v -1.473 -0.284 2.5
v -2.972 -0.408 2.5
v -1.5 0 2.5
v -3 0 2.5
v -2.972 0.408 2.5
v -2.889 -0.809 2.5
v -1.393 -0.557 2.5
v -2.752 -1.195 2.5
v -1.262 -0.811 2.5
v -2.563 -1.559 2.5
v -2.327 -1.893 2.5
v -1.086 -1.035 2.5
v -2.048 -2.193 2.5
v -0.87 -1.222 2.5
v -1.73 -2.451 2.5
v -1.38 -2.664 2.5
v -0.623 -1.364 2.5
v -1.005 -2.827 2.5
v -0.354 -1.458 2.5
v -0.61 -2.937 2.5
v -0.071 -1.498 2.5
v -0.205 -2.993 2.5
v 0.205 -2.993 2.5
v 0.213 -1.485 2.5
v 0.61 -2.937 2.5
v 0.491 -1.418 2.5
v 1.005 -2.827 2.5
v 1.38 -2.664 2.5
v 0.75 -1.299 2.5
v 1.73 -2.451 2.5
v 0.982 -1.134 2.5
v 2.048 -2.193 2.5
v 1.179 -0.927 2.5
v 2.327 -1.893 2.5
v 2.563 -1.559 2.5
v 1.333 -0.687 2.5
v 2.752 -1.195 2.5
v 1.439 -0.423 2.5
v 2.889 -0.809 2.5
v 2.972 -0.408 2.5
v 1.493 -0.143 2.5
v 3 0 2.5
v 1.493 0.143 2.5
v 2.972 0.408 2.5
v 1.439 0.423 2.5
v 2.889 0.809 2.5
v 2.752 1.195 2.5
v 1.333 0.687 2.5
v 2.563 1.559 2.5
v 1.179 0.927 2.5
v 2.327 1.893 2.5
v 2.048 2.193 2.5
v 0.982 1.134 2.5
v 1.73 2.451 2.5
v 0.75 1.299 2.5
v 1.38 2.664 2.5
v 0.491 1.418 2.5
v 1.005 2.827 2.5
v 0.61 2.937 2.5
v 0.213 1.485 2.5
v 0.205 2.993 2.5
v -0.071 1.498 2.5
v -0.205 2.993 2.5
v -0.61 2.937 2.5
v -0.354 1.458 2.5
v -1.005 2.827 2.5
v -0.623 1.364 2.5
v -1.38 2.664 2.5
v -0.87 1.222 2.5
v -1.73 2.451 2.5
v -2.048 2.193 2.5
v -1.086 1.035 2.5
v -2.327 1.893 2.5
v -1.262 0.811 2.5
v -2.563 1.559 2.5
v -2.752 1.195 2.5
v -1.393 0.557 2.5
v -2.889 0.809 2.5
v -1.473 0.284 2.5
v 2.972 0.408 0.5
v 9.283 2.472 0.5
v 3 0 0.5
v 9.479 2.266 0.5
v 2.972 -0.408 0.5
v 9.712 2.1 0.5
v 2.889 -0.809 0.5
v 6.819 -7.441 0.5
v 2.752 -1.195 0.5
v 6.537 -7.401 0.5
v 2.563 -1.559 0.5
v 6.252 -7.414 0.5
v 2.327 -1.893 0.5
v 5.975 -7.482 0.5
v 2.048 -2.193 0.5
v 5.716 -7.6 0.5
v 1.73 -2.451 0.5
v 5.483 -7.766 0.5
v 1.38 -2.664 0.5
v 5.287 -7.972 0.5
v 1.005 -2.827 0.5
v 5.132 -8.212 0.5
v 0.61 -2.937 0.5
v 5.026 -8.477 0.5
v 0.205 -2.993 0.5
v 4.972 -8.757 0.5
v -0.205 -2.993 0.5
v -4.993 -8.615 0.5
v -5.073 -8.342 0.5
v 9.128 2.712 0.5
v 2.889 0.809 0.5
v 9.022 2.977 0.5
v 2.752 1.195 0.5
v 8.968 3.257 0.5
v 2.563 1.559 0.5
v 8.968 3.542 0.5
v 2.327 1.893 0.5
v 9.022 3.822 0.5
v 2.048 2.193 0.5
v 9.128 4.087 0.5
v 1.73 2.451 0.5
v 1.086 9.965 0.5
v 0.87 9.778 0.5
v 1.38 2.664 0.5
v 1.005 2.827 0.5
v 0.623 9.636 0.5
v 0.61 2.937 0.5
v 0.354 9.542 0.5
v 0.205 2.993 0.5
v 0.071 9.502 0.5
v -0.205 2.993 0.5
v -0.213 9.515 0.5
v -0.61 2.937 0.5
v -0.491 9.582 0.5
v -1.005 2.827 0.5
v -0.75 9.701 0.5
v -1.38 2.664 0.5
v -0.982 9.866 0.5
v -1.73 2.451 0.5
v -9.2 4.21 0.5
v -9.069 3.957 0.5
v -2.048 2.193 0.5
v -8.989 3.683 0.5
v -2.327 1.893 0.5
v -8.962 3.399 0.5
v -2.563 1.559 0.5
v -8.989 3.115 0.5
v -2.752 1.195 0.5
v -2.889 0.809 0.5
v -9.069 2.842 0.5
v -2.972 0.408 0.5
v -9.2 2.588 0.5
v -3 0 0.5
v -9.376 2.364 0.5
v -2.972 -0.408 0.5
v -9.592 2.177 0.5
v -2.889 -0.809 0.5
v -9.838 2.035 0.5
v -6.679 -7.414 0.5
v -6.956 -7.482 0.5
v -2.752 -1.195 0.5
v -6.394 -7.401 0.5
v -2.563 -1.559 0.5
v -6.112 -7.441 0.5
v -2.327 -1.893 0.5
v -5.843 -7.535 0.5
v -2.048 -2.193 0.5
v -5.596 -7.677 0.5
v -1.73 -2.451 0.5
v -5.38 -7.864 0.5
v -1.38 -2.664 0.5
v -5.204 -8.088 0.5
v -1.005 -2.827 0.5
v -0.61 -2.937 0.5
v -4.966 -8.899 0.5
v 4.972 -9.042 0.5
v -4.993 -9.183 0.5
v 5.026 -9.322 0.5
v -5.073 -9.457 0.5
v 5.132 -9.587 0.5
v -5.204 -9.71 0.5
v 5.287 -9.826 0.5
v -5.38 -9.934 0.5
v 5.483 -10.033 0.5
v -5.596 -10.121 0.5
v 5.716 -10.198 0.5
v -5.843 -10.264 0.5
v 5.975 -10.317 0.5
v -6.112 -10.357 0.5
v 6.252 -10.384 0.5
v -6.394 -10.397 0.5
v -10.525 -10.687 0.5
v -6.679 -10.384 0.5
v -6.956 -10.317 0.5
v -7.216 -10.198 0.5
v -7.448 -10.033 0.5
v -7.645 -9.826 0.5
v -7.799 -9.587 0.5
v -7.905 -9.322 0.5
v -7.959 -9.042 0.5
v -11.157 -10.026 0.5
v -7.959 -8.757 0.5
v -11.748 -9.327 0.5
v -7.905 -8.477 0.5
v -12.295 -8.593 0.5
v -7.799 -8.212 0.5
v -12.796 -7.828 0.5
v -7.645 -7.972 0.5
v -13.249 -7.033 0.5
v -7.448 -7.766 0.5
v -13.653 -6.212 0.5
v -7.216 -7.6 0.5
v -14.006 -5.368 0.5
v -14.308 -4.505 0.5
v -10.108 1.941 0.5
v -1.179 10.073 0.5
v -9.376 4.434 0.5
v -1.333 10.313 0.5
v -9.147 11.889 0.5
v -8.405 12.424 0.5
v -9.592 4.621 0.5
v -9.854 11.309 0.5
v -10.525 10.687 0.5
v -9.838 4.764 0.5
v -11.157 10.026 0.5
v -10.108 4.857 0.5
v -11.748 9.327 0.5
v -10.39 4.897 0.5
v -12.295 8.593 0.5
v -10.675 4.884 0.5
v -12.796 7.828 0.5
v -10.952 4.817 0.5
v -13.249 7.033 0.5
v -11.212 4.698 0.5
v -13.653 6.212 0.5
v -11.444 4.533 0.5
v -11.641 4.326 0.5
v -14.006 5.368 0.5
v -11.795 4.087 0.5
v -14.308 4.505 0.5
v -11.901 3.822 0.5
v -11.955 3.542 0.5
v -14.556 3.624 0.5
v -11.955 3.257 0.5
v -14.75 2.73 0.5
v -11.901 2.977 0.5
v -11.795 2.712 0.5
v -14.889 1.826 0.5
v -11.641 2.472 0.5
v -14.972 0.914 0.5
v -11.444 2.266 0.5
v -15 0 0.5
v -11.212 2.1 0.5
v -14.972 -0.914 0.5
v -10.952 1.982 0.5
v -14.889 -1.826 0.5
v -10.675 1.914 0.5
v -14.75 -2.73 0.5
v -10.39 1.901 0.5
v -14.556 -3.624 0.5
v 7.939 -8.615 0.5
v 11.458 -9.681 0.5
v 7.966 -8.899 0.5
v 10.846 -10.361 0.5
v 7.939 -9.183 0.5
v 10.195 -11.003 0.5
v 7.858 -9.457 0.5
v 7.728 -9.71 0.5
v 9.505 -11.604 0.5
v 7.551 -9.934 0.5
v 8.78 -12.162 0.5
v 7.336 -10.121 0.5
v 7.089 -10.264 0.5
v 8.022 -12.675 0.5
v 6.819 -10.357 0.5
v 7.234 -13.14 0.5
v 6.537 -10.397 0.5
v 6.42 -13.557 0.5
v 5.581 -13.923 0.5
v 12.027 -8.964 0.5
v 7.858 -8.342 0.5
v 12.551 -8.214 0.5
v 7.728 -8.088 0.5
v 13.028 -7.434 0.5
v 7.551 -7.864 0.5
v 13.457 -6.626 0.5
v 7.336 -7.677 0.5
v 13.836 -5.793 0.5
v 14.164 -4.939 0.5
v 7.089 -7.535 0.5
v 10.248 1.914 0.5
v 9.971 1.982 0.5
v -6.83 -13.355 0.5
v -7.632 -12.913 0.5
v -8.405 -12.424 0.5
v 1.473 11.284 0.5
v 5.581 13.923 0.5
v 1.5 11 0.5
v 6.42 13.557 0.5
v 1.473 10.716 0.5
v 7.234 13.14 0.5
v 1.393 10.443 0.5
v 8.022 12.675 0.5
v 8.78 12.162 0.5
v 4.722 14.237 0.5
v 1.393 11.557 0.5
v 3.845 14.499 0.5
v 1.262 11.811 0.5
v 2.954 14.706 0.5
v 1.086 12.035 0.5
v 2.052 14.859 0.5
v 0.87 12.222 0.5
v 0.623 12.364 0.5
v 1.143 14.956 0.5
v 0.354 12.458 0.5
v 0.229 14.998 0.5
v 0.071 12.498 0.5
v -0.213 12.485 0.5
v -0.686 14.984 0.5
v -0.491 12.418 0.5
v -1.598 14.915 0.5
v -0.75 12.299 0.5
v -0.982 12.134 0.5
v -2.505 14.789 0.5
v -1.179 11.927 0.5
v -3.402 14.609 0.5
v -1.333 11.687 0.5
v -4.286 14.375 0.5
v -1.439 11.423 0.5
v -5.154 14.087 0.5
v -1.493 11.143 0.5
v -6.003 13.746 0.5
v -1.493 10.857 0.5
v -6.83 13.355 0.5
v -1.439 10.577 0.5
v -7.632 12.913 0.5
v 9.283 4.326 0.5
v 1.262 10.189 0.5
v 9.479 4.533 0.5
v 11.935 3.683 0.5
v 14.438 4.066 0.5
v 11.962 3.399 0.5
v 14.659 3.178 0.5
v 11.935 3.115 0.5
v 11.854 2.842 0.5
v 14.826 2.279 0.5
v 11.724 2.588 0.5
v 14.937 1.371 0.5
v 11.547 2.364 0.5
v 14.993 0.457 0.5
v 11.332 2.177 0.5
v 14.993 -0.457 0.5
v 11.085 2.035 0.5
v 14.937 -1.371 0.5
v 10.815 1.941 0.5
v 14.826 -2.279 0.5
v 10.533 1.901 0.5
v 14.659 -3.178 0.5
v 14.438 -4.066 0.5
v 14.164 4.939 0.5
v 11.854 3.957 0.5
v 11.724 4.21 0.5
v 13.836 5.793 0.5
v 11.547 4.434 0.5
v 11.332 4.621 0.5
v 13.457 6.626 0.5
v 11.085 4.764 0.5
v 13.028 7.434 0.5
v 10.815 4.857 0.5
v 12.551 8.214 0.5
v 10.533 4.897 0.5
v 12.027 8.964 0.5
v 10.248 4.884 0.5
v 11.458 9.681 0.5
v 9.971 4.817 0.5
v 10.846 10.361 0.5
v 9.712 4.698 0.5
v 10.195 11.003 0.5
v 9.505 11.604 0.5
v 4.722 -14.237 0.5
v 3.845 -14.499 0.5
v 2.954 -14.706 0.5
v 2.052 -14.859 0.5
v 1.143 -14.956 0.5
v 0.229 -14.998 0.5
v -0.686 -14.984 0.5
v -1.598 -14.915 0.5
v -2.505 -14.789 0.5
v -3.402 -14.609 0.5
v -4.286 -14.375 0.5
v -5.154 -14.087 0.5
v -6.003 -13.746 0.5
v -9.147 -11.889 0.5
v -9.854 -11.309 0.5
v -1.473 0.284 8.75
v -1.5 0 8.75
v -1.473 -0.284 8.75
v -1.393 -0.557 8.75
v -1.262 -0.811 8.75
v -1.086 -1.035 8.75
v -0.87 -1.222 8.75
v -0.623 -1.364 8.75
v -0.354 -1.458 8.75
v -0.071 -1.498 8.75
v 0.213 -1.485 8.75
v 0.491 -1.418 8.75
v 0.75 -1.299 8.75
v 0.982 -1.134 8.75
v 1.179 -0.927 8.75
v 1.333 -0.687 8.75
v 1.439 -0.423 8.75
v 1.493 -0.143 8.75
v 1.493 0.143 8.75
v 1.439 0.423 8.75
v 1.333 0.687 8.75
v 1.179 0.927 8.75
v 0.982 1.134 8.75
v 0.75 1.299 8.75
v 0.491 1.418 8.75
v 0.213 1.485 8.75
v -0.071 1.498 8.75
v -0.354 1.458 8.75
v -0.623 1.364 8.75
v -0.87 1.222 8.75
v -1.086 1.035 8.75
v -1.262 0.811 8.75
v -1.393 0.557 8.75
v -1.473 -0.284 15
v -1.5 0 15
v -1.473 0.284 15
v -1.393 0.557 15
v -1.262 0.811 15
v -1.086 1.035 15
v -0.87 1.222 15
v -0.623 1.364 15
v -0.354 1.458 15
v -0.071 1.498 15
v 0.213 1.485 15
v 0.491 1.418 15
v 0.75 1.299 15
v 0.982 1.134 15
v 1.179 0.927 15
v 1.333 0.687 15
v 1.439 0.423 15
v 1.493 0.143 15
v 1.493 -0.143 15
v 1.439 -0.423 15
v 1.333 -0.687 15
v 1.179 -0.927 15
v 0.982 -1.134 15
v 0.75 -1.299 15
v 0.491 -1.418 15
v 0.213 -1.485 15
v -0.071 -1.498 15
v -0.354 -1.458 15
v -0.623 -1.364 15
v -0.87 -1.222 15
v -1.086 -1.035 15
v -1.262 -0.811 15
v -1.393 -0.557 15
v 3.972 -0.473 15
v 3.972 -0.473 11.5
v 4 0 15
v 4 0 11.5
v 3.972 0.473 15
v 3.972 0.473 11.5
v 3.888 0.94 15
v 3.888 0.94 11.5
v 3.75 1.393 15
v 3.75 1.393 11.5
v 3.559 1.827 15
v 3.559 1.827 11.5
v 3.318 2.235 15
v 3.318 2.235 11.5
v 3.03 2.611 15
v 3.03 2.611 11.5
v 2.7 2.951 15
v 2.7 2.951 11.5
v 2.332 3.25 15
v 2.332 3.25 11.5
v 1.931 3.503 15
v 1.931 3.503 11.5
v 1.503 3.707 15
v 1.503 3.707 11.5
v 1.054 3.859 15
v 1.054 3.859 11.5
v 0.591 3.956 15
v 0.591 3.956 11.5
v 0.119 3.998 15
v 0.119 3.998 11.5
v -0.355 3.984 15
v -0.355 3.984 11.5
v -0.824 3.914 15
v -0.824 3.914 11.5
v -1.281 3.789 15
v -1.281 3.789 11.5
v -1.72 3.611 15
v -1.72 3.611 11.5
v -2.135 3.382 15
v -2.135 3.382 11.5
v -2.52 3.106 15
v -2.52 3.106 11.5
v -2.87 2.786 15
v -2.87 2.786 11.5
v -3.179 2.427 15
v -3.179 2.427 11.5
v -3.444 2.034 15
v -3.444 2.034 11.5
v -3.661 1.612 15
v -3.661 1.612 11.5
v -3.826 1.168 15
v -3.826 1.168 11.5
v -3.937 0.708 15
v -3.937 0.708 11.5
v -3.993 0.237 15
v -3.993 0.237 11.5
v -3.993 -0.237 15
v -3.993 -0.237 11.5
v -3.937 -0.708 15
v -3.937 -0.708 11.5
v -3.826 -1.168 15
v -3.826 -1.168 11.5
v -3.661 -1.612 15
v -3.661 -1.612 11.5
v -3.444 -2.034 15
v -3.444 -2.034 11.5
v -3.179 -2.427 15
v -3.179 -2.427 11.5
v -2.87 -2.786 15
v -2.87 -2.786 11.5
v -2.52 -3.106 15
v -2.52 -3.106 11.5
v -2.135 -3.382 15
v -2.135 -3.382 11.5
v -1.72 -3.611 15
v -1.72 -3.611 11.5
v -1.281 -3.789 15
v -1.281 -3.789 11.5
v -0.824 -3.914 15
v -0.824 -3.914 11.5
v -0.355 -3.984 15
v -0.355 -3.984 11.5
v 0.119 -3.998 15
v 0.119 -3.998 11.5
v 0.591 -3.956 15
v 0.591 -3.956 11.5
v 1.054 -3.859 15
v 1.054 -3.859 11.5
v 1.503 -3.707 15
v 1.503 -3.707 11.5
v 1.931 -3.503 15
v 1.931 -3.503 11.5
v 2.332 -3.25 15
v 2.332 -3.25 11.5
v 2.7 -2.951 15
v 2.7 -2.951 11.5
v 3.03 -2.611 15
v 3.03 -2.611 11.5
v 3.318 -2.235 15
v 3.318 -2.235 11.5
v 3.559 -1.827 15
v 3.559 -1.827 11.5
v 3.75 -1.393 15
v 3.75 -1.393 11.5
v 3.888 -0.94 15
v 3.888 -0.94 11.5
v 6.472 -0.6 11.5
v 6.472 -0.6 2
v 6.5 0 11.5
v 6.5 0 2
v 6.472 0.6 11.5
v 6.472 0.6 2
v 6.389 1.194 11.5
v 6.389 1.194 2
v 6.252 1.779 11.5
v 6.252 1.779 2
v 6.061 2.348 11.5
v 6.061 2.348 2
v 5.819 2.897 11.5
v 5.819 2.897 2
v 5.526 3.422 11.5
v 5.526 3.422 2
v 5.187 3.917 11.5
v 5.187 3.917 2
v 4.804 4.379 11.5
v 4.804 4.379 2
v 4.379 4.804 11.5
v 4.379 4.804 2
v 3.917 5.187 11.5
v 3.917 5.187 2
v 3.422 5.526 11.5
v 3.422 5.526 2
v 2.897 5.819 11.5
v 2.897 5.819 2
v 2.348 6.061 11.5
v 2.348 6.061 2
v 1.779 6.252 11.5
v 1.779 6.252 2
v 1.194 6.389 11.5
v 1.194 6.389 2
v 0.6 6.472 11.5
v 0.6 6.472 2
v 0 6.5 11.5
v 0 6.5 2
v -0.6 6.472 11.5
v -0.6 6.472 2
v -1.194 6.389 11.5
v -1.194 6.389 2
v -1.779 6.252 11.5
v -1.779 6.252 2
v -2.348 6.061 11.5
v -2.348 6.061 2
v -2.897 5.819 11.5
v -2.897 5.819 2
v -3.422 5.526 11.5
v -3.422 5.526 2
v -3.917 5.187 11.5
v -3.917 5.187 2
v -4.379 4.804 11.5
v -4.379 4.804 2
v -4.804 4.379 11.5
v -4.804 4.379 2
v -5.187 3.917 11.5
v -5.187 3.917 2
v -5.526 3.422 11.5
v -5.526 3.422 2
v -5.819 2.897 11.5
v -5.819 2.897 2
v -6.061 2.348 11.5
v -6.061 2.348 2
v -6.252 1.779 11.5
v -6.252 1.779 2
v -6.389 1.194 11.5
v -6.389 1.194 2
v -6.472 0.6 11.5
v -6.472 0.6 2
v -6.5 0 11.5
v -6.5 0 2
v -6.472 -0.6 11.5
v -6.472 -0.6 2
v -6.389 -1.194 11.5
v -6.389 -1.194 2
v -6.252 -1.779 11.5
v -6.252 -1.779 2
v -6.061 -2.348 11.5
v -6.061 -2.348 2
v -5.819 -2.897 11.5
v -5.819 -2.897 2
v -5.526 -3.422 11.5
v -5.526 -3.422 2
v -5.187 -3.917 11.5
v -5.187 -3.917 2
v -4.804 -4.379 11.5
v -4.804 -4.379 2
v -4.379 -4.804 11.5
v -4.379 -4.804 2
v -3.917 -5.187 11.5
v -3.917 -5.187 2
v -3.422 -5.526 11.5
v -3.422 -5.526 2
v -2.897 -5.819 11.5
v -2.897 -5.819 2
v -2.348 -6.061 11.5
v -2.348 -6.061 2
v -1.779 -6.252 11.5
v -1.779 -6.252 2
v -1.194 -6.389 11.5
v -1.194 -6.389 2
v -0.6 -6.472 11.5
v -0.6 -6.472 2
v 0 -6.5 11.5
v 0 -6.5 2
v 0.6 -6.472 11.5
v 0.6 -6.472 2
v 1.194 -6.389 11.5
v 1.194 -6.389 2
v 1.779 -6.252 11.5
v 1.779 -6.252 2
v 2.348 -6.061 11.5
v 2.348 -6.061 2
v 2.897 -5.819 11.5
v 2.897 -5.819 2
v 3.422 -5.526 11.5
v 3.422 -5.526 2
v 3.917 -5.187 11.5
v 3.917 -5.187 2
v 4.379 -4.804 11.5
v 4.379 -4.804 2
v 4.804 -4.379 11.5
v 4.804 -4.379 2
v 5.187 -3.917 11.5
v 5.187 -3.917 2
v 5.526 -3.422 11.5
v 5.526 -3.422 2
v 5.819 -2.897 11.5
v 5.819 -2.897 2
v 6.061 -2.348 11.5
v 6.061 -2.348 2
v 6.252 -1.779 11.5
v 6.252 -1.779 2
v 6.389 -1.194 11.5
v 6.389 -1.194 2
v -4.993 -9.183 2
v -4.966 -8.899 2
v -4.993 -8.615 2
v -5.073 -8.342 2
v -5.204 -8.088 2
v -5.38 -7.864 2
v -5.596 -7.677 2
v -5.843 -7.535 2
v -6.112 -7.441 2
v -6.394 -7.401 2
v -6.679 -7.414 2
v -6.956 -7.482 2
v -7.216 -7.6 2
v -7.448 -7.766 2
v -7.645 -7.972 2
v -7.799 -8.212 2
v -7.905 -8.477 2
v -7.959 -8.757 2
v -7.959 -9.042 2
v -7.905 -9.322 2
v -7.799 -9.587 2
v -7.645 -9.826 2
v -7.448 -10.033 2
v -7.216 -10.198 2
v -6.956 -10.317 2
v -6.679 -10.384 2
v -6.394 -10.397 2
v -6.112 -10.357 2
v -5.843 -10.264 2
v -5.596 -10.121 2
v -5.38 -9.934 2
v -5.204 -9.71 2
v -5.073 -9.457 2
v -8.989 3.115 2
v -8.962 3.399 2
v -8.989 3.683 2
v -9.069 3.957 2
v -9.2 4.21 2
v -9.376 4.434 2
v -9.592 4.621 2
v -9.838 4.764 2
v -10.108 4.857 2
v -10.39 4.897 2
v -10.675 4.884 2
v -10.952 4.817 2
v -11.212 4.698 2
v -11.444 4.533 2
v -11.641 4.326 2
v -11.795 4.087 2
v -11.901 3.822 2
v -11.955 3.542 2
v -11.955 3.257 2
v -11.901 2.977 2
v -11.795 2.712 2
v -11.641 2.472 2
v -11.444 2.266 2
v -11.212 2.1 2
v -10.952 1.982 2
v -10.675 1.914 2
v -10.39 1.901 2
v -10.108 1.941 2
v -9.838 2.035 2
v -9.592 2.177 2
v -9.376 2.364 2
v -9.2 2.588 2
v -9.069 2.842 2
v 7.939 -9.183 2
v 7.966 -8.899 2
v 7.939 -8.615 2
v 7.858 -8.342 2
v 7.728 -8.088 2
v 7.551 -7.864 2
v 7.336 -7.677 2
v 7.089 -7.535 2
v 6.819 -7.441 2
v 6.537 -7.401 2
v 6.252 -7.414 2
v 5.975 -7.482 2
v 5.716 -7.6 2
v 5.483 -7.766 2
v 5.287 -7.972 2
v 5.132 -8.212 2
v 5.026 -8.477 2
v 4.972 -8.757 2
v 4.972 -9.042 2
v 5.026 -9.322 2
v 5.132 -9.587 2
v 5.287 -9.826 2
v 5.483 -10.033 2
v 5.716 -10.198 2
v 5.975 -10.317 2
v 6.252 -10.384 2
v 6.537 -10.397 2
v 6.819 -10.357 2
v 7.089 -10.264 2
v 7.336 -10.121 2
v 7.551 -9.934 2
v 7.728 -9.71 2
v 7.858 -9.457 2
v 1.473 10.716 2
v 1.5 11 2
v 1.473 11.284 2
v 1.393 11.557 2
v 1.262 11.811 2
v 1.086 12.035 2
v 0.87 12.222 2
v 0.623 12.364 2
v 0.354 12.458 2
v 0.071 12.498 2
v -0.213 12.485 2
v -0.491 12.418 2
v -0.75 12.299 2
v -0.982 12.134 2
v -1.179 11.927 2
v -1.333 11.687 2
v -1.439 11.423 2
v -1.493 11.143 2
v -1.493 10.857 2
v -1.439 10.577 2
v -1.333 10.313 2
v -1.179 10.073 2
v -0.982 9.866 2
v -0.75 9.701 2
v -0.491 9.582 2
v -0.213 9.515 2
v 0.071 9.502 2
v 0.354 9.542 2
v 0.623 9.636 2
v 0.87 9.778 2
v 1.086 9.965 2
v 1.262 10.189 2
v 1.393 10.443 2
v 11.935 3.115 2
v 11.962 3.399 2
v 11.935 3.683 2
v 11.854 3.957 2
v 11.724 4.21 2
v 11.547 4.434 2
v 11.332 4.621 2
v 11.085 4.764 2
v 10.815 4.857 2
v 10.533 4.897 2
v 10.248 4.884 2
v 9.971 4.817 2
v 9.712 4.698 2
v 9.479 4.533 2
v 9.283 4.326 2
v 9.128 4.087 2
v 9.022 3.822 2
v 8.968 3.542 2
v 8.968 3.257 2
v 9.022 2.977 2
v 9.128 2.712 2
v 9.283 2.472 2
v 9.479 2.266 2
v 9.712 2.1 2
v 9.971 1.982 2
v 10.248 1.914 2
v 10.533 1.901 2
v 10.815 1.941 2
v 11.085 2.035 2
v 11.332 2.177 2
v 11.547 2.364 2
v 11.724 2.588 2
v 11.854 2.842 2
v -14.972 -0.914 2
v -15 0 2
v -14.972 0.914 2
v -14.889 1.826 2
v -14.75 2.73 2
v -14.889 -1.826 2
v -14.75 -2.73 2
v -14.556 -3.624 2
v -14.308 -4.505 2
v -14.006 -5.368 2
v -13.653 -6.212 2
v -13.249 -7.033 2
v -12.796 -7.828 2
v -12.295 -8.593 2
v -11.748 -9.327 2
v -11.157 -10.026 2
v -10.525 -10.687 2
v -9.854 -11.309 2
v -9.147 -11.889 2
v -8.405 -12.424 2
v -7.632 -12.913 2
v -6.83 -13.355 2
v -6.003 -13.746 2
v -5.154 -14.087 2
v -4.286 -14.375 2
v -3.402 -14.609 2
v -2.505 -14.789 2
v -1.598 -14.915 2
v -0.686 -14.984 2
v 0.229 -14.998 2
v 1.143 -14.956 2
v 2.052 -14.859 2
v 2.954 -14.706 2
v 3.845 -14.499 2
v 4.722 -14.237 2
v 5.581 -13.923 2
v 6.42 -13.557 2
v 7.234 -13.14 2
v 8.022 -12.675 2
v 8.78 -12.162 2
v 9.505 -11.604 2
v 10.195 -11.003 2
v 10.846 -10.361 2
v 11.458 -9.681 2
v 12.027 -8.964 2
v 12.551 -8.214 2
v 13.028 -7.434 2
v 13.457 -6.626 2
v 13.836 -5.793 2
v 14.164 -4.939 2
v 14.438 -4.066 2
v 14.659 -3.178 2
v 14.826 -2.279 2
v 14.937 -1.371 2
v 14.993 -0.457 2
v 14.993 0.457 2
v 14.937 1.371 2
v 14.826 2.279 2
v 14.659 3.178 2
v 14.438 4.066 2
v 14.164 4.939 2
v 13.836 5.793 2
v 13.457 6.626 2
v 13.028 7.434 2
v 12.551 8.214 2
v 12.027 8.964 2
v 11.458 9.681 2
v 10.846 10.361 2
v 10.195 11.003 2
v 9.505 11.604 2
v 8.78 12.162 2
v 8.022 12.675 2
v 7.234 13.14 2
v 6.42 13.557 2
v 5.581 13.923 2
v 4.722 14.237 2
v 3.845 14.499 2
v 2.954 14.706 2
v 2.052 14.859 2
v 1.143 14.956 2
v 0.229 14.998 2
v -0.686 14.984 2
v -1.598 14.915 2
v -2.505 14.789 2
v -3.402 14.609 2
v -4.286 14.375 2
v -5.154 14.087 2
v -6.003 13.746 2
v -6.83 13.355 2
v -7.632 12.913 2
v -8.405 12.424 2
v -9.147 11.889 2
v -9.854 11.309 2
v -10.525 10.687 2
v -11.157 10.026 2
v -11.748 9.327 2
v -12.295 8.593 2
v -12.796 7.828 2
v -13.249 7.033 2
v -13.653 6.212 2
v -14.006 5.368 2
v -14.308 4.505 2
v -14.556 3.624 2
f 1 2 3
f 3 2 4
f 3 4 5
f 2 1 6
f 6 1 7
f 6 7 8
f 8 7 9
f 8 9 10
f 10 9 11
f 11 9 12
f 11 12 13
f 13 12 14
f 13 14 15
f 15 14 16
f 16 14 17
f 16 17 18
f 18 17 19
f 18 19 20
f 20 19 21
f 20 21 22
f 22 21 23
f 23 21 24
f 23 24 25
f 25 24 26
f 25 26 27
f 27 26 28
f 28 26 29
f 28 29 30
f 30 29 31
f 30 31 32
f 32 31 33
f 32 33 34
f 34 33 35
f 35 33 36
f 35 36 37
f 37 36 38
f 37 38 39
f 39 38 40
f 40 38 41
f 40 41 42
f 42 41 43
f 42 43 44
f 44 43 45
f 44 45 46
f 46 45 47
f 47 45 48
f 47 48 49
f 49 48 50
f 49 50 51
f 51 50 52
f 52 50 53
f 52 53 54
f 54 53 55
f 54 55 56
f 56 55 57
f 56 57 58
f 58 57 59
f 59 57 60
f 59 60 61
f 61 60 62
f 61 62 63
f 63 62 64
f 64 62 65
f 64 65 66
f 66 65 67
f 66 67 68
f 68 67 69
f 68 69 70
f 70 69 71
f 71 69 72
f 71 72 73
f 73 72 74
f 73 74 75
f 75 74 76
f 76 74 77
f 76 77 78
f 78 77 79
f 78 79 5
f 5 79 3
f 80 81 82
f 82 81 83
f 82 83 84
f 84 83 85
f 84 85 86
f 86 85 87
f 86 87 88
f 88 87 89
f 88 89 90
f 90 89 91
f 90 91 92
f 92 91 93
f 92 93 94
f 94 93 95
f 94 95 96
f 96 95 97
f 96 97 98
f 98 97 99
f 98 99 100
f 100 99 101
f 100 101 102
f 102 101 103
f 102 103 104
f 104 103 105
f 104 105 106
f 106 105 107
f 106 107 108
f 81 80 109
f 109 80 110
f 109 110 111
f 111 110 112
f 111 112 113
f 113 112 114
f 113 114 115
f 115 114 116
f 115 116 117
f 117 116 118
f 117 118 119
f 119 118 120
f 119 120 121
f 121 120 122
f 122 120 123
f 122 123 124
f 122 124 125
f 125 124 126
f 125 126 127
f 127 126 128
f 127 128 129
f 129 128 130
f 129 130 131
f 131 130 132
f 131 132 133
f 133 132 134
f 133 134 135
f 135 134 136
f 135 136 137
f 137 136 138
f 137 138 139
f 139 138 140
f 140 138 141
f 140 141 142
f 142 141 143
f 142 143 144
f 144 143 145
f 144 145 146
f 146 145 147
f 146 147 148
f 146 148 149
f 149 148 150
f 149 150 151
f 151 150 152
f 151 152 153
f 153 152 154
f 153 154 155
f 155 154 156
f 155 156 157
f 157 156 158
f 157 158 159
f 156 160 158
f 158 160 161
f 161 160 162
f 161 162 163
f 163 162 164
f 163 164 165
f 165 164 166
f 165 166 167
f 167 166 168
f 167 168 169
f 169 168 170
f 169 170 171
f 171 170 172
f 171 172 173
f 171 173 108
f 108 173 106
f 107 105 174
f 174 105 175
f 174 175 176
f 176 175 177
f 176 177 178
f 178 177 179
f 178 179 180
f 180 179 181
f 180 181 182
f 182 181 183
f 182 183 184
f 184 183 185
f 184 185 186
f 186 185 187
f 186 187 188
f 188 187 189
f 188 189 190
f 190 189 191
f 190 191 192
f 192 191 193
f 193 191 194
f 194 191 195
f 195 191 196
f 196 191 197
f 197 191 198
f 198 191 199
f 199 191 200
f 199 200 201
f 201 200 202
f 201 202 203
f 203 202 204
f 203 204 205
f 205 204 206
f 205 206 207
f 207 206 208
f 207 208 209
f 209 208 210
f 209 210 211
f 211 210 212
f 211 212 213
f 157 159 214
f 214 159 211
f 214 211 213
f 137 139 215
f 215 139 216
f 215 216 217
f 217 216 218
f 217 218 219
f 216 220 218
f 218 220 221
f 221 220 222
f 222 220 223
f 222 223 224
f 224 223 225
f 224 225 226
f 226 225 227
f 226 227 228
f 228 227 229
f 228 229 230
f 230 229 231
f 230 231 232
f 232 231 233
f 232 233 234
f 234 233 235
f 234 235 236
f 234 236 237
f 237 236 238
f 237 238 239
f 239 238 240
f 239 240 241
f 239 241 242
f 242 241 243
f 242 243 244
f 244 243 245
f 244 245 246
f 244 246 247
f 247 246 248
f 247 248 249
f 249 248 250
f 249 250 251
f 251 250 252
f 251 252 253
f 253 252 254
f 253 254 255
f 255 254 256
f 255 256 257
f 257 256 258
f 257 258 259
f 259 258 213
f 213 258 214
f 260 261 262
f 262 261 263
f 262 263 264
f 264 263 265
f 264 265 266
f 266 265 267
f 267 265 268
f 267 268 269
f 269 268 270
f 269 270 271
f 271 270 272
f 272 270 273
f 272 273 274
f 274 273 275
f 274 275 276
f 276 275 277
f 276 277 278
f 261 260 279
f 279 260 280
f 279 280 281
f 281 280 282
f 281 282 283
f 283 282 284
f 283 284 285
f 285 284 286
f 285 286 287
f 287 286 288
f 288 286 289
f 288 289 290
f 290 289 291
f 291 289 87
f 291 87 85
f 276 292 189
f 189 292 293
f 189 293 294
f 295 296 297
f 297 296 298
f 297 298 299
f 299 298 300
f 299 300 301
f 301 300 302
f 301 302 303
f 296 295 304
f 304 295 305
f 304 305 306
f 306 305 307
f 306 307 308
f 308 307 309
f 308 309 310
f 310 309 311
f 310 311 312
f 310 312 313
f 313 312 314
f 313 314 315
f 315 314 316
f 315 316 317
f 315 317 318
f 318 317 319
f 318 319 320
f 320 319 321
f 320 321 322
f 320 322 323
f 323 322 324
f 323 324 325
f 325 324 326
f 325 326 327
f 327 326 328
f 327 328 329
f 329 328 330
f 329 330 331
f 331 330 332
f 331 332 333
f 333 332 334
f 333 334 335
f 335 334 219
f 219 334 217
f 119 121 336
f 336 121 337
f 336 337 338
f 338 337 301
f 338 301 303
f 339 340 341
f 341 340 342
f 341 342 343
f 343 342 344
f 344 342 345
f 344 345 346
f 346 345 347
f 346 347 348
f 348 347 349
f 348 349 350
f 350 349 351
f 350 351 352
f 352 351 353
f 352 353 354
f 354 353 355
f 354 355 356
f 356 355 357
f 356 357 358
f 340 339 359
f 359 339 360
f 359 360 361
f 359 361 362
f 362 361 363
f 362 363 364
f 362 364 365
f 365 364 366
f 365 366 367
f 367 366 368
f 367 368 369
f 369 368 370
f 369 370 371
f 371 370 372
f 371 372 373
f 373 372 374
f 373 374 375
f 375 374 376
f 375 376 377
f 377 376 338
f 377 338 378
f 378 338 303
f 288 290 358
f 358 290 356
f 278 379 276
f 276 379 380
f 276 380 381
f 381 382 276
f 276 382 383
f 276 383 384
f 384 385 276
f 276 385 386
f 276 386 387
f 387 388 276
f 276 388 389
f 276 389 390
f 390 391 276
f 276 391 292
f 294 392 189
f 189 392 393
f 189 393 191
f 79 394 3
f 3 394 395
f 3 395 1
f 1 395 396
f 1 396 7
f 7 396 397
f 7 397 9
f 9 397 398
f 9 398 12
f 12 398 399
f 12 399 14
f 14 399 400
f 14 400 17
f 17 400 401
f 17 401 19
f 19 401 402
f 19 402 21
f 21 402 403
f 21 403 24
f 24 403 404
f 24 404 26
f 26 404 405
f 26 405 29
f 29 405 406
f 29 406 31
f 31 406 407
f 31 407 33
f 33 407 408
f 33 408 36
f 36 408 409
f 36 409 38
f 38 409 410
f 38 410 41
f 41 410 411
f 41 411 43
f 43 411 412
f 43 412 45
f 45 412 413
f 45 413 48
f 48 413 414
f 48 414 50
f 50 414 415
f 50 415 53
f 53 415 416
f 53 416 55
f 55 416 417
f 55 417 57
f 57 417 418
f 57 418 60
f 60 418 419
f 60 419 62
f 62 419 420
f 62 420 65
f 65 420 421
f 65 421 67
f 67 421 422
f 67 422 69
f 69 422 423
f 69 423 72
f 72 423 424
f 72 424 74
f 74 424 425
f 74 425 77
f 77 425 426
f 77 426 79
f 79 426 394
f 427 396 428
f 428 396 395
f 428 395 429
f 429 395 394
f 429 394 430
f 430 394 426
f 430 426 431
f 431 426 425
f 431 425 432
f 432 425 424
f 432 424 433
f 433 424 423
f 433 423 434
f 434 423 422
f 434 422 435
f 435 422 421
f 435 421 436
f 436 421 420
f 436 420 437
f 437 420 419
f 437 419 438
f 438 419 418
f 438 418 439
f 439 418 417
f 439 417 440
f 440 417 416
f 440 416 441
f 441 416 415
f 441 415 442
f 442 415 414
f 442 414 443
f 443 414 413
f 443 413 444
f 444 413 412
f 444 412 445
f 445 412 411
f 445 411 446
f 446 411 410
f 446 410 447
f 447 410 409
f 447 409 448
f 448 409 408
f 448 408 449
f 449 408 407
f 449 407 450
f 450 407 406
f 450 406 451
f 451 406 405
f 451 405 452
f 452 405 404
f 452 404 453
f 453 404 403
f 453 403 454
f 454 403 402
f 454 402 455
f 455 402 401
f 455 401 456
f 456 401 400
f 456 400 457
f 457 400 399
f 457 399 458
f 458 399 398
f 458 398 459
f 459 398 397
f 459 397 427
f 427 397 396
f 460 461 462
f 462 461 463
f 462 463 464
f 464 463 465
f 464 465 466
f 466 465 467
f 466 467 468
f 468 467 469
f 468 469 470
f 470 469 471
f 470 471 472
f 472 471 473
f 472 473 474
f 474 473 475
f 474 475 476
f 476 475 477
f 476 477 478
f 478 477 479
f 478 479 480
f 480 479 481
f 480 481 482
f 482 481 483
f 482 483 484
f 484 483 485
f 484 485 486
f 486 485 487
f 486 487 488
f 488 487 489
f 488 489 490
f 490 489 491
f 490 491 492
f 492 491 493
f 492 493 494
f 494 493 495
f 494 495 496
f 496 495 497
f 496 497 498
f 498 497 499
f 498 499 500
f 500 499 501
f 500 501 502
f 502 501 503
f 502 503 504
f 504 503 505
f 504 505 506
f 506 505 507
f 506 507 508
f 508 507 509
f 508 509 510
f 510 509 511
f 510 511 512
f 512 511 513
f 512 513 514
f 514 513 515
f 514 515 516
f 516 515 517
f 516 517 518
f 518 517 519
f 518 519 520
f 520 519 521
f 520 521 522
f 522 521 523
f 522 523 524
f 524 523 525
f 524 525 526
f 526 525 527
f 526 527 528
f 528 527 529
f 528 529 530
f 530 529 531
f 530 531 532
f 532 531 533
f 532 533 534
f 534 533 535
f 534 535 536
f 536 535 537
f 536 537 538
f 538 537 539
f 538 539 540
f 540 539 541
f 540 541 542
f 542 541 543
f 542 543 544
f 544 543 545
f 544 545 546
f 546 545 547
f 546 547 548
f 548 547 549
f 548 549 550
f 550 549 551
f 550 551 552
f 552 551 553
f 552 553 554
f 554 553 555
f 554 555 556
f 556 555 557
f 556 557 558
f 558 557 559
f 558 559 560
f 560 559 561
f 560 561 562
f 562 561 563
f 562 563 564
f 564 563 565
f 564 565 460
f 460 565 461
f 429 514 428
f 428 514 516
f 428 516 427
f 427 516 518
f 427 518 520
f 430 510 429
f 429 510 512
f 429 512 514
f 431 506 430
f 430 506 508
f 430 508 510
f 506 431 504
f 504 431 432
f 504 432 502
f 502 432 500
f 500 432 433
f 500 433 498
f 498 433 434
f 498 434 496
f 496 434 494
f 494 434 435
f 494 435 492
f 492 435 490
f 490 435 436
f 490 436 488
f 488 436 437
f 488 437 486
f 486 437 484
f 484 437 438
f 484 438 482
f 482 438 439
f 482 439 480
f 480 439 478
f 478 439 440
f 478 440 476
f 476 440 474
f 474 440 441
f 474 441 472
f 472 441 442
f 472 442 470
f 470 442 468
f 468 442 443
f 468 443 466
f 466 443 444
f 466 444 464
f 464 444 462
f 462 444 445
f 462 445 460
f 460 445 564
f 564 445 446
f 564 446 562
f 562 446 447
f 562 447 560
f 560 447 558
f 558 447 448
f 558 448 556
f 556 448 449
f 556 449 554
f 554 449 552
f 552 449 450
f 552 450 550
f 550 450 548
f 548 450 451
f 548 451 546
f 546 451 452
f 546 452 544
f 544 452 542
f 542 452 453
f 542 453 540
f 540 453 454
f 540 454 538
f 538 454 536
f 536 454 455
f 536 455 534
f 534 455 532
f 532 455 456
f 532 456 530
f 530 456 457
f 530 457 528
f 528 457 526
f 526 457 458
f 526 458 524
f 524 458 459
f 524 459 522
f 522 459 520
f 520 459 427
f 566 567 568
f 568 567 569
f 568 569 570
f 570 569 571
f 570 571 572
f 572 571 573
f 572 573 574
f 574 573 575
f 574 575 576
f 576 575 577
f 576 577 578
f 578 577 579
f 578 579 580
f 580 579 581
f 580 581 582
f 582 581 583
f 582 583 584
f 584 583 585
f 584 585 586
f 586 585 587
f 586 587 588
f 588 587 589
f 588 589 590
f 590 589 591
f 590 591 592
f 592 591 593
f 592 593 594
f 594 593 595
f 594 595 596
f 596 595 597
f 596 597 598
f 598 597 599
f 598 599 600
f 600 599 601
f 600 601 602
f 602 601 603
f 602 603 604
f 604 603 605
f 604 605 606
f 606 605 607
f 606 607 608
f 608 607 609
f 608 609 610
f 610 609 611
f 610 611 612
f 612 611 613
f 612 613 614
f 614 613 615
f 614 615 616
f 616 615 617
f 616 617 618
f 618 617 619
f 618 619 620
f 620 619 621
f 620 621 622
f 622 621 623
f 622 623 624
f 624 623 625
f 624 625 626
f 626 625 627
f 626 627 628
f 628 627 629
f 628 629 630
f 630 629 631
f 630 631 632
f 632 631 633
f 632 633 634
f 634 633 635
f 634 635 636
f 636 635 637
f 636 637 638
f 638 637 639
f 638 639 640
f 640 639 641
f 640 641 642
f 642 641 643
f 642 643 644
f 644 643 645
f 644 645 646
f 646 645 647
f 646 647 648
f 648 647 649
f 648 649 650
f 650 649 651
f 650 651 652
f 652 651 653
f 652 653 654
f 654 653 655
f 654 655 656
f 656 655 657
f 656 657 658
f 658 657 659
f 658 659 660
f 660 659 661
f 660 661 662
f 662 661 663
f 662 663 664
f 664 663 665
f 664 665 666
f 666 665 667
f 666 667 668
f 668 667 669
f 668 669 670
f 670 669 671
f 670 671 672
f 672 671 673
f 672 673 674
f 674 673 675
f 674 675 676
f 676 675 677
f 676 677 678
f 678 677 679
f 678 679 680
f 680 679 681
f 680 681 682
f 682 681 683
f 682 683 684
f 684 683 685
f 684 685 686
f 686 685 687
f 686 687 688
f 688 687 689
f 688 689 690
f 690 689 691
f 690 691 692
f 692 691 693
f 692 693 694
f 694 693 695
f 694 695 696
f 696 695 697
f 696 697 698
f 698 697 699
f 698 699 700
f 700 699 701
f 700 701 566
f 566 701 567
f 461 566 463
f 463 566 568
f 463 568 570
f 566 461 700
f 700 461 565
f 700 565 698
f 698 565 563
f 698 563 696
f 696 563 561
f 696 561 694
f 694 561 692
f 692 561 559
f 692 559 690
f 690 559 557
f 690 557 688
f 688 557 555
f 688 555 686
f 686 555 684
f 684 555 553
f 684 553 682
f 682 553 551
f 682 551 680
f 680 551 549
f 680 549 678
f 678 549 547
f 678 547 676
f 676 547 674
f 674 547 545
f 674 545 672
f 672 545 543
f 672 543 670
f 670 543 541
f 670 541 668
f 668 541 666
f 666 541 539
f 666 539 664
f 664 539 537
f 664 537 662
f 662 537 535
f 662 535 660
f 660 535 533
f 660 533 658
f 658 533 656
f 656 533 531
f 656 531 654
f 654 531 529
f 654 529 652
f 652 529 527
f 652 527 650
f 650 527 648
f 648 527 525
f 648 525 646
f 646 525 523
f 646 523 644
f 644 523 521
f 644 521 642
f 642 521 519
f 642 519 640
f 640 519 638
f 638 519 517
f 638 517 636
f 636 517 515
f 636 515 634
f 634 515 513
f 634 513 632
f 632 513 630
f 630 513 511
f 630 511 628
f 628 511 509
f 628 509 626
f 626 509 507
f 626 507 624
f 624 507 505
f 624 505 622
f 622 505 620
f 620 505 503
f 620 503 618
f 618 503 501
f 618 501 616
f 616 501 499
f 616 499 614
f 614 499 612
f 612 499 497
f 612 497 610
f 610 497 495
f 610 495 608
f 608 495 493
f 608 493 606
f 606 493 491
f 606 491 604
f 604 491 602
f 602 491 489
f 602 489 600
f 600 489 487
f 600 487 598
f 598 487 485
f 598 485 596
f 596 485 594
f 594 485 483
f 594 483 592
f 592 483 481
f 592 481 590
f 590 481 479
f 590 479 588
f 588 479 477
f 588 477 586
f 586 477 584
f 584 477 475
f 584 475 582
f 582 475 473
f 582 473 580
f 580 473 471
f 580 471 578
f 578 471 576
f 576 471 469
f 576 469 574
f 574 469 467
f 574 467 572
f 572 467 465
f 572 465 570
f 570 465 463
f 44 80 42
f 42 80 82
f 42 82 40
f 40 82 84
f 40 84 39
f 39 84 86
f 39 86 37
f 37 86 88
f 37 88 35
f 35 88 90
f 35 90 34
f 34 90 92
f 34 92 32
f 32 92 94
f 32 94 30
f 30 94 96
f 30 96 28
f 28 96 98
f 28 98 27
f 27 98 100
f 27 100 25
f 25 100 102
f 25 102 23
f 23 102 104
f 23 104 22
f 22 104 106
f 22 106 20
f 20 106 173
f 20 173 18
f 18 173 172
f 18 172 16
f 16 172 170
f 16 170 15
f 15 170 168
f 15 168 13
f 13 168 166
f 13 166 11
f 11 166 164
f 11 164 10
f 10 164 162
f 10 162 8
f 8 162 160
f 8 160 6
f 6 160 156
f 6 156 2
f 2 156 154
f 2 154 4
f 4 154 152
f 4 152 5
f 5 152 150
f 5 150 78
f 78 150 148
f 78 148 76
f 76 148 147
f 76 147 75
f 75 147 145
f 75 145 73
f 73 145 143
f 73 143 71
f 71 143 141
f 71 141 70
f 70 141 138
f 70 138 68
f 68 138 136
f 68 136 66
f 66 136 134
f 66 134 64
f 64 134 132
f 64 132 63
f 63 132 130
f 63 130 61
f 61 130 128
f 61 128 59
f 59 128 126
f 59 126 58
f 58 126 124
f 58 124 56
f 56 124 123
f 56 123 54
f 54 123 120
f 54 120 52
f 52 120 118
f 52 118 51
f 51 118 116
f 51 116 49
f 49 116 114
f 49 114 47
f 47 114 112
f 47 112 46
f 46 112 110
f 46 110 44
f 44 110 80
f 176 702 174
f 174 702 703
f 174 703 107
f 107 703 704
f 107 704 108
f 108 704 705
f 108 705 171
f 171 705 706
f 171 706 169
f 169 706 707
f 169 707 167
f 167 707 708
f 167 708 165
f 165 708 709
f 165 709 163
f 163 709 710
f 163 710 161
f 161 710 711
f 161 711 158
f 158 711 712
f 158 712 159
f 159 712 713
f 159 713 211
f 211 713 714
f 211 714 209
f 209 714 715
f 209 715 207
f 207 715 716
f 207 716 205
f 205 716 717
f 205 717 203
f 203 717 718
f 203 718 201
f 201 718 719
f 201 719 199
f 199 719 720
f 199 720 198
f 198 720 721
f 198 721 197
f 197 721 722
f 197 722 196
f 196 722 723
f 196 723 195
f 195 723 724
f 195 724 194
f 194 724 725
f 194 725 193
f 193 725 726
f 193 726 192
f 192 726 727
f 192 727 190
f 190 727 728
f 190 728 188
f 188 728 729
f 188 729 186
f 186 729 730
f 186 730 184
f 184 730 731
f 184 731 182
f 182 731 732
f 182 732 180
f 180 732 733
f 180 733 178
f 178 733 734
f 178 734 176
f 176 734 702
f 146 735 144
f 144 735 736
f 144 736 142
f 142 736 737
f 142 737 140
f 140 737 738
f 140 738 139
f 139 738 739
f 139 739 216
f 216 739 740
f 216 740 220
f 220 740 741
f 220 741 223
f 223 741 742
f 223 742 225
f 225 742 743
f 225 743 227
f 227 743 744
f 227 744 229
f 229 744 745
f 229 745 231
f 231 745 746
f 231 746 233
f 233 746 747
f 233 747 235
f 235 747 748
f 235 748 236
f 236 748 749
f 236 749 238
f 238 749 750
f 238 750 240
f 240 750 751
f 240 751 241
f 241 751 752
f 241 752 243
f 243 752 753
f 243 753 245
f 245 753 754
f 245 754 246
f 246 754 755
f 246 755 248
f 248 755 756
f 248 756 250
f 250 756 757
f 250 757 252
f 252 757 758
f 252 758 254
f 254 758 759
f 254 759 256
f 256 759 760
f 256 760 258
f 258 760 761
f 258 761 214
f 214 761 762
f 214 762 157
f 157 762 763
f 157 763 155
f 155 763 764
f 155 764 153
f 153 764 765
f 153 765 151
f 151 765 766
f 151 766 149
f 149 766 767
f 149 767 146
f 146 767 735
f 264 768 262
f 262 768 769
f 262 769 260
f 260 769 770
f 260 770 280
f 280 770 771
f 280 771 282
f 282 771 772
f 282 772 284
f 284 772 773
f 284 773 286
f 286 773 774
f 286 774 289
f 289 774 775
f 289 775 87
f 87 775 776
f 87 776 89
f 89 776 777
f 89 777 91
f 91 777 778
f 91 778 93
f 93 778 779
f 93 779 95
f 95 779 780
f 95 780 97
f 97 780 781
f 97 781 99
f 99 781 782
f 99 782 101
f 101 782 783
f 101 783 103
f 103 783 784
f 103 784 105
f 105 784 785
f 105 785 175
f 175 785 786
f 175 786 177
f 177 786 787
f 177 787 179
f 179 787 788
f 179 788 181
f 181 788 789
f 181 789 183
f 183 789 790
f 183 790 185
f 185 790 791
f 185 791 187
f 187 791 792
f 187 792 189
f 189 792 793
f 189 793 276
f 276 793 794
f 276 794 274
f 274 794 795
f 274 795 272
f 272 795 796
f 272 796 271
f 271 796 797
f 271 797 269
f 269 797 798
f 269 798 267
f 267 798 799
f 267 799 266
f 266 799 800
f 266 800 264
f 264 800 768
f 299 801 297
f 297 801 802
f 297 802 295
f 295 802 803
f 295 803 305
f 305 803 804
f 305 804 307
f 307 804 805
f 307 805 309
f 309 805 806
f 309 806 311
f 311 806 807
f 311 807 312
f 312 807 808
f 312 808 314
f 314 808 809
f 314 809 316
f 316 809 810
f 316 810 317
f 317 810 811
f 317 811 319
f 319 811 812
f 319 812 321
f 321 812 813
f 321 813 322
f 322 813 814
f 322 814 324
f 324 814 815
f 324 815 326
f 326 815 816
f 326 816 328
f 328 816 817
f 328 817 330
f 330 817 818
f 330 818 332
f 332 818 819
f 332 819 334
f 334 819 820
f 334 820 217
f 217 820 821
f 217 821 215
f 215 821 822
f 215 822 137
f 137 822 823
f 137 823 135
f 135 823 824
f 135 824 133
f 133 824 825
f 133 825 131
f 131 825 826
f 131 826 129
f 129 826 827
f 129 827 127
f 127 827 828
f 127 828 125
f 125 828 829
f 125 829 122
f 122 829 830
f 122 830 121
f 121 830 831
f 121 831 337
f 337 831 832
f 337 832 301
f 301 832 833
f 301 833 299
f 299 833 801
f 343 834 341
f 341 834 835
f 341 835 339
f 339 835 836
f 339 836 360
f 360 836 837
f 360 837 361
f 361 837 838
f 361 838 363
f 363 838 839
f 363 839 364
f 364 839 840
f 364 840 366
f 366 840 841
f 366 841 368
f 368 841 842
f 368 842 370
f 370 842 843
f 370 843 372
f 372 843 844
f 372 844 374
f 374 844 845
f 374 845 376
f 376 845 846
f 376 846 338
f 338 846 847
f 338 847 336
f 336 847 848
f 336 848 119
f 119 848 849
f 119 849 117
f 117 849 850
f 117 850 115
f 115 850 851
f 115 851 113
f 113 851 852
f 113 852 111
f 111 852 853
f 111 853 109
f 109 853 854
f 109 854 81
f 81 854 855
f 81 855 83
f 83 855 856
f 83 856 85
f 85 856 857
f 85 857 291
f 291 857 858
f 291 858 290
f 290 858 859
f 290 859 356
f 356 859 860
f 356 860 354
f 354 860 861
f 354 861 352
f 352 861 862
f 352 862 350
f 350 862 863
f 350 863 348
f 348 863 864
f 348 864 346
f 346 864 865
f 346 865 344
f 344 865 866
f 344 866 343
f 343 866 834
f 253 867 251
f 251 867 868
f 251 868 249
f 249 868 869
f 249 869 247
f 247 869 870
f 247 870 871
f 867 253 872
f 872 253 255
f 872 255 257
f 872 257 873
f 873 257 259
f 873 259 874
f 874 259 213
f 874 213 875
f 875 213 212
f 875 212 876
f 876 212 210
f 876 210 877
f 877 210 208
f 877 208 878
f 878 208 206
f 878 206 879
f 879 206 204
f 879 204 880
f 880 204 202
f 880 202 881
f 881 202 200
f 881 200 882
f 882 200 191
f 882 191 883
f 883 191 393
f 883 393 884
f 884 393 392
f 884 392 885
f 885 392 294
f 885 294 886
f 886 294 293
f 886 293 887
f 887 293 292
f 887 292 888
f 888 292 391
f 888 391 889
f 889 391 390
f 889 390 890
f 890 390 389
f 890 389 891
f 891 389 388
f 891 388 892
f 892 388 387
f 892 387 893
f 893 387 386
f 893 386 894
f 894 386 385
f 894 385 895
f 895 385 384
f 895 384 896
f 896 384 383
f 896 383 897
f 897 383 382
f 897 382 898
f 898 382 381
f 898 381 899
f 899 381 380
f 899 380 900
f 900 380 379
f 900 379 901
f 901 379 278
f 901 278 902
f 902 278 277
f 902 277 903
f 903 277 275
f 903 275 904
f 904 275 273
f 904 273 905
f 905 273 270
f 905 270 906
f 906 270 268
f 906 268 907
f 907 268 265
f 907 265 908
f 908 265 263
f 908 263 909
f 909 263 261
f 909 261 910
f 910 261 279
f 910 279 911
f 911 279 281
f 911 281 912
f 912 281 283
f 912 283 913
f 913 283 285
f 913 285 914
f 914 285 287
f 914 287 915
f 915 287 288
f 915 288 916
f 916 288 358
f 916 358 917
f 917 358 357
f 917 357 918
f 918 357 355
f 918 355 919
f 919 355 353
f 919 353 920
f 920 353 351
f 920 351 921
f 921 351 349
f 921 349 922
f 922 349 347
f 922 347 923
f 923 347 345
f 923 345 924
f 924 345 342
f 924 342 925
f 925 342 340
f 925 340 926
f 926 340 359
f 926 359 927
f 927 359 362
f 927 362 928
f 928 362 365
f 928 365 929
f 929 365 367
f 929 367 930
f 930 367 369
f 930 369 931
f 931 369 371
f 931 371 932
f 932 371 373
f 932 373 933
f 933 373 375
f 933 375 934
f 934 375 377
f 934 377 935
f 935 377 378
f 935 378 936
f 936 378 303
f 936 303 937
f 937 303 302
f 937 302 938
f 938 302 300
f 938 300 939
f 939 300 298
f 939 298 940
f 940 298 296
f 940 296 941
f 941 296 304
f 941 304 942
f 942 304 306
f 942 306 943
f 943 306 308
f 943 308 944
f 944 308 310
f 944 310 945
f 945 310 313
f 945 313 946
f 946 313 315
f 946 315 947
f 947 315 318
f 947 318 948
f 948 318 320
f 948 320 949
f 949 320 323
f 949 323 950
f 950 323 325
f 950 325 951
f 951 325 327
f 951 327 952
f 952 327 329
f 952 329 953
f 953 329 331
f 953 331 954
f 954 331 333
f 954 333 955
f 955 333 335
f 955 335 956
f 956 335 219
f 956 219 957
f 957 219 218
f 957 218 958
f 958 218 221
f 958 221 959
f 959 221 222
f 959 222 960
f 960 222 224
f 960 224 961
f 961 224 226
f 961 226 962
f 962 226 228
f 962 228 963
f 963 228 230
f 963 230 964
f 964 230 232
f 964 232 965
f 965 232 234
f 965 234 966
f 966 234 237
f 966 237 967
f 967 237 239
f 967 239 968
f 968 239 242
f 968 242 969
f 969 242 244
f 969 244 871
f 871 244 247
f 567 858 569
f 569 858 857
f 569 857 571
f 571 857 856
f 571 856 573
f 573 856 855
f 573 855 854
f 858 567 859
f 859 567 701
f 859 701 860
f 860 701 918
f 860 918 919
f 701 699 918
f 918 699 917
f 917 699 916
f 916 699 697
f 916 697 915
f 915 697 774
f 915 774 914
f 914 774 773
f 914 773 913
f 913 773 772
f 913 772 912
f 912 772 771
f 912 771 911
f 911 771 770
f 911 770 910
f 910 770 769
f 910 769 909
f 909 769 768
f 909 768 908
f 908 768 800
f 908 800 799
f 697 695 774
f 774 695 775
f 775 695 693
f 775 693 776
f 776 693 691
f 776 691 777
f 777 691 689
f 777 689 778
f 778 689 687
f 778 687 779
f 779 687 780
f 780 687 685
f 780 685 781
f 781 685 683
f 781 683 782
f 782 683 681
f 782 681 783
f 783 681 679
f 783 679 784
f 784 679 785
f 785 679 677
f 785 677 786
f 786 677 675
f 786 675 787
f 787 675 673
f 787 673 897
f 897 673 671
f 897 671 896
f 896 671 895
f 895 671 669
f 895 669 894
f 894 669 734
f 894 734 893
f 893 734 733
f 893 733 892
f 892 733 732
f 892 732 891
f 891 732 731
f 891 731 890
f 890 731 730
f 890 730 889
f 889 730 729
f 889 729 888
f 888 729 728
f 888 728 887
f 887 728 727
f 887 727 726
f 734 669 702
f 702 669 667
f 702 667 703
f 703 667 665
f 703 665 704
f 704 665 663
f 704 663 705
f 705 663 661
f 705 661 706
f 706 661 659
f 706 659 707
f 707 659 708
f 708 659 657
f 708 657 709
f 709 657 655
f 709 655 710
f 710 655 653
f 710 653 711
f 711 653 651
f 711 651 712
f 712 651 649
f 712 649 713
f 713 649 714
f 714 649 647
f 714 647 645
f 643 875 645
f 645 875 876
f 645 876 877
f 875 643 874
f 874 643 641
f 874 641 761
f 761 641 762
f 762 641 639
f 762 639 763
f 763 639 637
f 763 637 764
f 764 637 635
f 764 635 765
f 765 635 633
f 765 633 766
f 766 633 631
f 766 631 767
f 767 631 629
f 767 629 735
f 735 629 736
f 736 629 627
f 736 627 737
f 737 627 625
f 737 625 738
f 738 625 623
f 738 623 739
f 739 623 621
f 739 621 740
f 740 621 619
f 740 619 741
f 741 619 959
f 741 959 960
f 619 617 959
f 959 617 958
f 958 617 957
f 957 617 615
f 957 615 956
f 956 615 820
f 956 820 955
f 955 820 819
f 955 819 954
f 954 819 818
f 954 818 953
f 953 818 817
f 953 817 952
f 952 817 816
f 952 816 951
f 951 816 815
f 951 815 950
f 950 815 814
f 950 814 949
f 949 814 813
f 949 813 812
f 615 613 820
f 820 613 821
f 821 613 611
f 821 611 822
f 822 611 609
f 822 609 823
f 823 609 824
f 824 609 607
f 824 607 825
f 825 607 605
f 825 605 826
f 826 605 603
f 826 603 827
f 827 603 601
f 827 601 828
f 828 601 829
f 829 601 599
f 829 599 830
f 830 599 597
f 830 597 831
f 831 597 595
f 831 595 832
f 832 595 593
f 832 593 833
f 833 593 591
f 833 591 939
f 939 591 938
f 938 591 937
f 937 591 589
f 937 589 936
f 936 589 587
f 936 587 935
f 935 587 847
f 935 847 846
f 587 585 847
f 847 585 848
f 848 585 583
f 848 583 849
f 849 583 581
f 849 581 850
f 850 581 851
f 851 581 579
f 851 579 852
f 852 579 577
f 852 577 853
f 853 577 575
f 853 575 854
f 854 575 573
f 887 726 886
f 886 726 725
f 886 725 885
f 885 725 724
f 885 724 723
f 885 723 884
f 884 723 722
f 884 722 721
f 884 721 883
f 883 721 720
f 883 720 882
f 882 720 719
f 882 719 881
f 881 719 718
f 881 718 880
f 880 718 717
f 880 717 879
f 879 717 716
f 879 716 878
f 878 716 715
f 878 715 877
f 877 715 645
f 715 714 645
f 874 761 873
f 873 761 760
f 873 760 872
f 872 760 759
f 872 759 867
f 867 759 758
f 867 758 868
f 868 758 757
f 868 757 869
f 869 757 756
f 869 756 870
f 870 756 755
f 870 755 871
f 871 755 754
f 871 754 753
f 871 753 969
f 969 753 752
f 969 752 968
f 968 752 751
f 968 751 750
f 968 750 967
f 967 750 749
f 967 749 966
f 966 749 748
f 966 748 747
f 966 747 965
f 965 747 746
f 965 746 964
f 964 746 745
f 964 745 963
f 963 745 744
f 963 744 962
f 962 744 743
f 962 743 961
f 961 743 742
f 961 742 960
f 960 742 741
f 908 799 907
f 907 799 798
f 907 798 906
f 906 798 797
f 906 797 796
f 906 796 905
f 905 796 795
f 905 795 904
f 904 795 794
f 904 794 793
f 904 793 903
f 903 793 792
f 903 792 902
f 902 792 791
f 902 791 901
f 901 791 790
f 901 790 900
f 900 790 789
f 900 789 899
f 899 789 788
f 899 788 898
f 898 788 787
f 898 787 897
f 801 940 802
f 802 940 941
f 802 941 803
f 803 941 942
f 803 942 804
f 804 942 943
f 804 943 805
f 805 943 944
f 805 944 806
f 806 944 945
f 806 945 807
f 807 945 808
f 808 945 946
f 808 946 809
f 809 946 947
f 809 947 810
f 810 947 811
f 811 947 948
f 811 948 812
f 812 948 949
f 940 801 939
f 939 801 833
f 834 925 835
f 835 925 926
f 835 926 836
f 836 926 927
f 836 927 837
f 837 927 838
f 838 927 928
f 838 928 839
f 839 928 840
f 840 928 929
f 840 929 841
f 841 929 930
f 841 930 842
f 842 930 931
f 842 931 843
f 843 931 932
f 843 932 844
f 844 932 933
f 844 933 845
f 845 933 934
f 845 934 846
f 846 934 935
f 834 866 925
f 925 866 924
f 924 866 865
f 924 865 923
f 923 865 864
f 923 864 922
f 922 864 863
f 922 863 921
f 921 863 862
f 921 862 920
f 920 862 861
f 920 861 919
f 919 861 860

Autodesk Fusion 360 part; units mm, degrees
sketch "Sketch1" plane through (0, 0, 0) normal (0, 0, 1) x (1, 0, 0)
  circle A0 centre (0, 0) radius 15
extrude "Extrude1" add sketch "Sketch1" along normal blind 2
sketch "Sketch2" plane through (0, 0, 2) normal (0, 0, 1) x (-1, 0, 0)
  circle A0 centre (0, 0) radius 15
  circle A1 centre (0, -11) radius 1.5
  circle A2 centre (10.4616, -3.3992) radius 1.5
  circle A3 centre (6.4656, 8.8992) radius 1.5
  circle A4 centre (-6.4656, 8.8992) radius 1.5
  circle A5 centre (-10.4616, -3.3992) radius 1.5
  dimension "d4" = 360
extrude "Extrude2" cut sketch "Sketch2" against normal blind 19 contours A1 | A2 | A3 | A4 | A5
sketch "Sketch3" plane through (0, 0, 2) normal (0, 0, 1) x (-1, 0, 0)
  circle A0 centre (6.4656, 8.8992) radius 1.5
  circle A1 centre (10.4616, -3.3992) radius 1.5
  circle A2 centre (-6.4656, 8.8992) radius 1.5
  circle A3 centre (0, -11) radius 1.5
  circle A4 centre (-10.4616, -3.3992) radius 1.5
  circle A5 centre (0, 0) radius 15
  circle A6 centre (0, 0) radius 3
extrude "Extrude3" cut sketch "Sketch3" against normal blind 2 contours A6
sketch "Sketch4" plane through (0, 0, 2) normal (0, 0, 1) x (-1, 0, 0)
  circle A0 centre (0, 0) radius 3
  circle A1 centre (6.4656, 8.8992) radius 1.5
  circle A2 centre (10.4616, -3.3992) radius 1.5
  circle A3 centre (-6.4656, 8.8992) radius 1.5
  circle A4 centre (0, -11) radius 1.5
  circle A5 centre (-10.4616, -3.3992) radius 1.5
  circle A6 centre (0, 0) radius 15
  circle A7 centre (0, 0) radius 6.5
  dimension "d9" = 13
extrude "Extrude4" add sketch "Sketch4" along normal blind 9.5 contours A0 | A7
sketch "Sketch5" plane through (0, 0, 11.5) normal (0, 0, 1) x (-1, 0, 0)
  circle A0 centre (0, 0) radius 6.5
  circle A1 centre (0, 0) radius 4
extrude "Extrude5" add sketch "Sketch5" along normal blind 3.5 contours A1
sketch "Sketch6" plane through (0, 0, 2) normal (0, 0, -1) x (1, 0, 0)
  circle A0 centre (0, 0) radius 3
  circle A1 centre (0, 0) radius 1.5
  dimension "d14" = 3
extrude "Extrude6" cut sketch "Sketch6" against normal blind 100 contours A1
extrude "Extrude7" cut 1 faces at (-10.559, -3.3616, 0) along direction (0, 0, 1) blind 0.5
extrude "Extrude8" cut 1 faces at (-2.4832, 0.2236, 2) along direction (0, 0, 1) blind 0.5
